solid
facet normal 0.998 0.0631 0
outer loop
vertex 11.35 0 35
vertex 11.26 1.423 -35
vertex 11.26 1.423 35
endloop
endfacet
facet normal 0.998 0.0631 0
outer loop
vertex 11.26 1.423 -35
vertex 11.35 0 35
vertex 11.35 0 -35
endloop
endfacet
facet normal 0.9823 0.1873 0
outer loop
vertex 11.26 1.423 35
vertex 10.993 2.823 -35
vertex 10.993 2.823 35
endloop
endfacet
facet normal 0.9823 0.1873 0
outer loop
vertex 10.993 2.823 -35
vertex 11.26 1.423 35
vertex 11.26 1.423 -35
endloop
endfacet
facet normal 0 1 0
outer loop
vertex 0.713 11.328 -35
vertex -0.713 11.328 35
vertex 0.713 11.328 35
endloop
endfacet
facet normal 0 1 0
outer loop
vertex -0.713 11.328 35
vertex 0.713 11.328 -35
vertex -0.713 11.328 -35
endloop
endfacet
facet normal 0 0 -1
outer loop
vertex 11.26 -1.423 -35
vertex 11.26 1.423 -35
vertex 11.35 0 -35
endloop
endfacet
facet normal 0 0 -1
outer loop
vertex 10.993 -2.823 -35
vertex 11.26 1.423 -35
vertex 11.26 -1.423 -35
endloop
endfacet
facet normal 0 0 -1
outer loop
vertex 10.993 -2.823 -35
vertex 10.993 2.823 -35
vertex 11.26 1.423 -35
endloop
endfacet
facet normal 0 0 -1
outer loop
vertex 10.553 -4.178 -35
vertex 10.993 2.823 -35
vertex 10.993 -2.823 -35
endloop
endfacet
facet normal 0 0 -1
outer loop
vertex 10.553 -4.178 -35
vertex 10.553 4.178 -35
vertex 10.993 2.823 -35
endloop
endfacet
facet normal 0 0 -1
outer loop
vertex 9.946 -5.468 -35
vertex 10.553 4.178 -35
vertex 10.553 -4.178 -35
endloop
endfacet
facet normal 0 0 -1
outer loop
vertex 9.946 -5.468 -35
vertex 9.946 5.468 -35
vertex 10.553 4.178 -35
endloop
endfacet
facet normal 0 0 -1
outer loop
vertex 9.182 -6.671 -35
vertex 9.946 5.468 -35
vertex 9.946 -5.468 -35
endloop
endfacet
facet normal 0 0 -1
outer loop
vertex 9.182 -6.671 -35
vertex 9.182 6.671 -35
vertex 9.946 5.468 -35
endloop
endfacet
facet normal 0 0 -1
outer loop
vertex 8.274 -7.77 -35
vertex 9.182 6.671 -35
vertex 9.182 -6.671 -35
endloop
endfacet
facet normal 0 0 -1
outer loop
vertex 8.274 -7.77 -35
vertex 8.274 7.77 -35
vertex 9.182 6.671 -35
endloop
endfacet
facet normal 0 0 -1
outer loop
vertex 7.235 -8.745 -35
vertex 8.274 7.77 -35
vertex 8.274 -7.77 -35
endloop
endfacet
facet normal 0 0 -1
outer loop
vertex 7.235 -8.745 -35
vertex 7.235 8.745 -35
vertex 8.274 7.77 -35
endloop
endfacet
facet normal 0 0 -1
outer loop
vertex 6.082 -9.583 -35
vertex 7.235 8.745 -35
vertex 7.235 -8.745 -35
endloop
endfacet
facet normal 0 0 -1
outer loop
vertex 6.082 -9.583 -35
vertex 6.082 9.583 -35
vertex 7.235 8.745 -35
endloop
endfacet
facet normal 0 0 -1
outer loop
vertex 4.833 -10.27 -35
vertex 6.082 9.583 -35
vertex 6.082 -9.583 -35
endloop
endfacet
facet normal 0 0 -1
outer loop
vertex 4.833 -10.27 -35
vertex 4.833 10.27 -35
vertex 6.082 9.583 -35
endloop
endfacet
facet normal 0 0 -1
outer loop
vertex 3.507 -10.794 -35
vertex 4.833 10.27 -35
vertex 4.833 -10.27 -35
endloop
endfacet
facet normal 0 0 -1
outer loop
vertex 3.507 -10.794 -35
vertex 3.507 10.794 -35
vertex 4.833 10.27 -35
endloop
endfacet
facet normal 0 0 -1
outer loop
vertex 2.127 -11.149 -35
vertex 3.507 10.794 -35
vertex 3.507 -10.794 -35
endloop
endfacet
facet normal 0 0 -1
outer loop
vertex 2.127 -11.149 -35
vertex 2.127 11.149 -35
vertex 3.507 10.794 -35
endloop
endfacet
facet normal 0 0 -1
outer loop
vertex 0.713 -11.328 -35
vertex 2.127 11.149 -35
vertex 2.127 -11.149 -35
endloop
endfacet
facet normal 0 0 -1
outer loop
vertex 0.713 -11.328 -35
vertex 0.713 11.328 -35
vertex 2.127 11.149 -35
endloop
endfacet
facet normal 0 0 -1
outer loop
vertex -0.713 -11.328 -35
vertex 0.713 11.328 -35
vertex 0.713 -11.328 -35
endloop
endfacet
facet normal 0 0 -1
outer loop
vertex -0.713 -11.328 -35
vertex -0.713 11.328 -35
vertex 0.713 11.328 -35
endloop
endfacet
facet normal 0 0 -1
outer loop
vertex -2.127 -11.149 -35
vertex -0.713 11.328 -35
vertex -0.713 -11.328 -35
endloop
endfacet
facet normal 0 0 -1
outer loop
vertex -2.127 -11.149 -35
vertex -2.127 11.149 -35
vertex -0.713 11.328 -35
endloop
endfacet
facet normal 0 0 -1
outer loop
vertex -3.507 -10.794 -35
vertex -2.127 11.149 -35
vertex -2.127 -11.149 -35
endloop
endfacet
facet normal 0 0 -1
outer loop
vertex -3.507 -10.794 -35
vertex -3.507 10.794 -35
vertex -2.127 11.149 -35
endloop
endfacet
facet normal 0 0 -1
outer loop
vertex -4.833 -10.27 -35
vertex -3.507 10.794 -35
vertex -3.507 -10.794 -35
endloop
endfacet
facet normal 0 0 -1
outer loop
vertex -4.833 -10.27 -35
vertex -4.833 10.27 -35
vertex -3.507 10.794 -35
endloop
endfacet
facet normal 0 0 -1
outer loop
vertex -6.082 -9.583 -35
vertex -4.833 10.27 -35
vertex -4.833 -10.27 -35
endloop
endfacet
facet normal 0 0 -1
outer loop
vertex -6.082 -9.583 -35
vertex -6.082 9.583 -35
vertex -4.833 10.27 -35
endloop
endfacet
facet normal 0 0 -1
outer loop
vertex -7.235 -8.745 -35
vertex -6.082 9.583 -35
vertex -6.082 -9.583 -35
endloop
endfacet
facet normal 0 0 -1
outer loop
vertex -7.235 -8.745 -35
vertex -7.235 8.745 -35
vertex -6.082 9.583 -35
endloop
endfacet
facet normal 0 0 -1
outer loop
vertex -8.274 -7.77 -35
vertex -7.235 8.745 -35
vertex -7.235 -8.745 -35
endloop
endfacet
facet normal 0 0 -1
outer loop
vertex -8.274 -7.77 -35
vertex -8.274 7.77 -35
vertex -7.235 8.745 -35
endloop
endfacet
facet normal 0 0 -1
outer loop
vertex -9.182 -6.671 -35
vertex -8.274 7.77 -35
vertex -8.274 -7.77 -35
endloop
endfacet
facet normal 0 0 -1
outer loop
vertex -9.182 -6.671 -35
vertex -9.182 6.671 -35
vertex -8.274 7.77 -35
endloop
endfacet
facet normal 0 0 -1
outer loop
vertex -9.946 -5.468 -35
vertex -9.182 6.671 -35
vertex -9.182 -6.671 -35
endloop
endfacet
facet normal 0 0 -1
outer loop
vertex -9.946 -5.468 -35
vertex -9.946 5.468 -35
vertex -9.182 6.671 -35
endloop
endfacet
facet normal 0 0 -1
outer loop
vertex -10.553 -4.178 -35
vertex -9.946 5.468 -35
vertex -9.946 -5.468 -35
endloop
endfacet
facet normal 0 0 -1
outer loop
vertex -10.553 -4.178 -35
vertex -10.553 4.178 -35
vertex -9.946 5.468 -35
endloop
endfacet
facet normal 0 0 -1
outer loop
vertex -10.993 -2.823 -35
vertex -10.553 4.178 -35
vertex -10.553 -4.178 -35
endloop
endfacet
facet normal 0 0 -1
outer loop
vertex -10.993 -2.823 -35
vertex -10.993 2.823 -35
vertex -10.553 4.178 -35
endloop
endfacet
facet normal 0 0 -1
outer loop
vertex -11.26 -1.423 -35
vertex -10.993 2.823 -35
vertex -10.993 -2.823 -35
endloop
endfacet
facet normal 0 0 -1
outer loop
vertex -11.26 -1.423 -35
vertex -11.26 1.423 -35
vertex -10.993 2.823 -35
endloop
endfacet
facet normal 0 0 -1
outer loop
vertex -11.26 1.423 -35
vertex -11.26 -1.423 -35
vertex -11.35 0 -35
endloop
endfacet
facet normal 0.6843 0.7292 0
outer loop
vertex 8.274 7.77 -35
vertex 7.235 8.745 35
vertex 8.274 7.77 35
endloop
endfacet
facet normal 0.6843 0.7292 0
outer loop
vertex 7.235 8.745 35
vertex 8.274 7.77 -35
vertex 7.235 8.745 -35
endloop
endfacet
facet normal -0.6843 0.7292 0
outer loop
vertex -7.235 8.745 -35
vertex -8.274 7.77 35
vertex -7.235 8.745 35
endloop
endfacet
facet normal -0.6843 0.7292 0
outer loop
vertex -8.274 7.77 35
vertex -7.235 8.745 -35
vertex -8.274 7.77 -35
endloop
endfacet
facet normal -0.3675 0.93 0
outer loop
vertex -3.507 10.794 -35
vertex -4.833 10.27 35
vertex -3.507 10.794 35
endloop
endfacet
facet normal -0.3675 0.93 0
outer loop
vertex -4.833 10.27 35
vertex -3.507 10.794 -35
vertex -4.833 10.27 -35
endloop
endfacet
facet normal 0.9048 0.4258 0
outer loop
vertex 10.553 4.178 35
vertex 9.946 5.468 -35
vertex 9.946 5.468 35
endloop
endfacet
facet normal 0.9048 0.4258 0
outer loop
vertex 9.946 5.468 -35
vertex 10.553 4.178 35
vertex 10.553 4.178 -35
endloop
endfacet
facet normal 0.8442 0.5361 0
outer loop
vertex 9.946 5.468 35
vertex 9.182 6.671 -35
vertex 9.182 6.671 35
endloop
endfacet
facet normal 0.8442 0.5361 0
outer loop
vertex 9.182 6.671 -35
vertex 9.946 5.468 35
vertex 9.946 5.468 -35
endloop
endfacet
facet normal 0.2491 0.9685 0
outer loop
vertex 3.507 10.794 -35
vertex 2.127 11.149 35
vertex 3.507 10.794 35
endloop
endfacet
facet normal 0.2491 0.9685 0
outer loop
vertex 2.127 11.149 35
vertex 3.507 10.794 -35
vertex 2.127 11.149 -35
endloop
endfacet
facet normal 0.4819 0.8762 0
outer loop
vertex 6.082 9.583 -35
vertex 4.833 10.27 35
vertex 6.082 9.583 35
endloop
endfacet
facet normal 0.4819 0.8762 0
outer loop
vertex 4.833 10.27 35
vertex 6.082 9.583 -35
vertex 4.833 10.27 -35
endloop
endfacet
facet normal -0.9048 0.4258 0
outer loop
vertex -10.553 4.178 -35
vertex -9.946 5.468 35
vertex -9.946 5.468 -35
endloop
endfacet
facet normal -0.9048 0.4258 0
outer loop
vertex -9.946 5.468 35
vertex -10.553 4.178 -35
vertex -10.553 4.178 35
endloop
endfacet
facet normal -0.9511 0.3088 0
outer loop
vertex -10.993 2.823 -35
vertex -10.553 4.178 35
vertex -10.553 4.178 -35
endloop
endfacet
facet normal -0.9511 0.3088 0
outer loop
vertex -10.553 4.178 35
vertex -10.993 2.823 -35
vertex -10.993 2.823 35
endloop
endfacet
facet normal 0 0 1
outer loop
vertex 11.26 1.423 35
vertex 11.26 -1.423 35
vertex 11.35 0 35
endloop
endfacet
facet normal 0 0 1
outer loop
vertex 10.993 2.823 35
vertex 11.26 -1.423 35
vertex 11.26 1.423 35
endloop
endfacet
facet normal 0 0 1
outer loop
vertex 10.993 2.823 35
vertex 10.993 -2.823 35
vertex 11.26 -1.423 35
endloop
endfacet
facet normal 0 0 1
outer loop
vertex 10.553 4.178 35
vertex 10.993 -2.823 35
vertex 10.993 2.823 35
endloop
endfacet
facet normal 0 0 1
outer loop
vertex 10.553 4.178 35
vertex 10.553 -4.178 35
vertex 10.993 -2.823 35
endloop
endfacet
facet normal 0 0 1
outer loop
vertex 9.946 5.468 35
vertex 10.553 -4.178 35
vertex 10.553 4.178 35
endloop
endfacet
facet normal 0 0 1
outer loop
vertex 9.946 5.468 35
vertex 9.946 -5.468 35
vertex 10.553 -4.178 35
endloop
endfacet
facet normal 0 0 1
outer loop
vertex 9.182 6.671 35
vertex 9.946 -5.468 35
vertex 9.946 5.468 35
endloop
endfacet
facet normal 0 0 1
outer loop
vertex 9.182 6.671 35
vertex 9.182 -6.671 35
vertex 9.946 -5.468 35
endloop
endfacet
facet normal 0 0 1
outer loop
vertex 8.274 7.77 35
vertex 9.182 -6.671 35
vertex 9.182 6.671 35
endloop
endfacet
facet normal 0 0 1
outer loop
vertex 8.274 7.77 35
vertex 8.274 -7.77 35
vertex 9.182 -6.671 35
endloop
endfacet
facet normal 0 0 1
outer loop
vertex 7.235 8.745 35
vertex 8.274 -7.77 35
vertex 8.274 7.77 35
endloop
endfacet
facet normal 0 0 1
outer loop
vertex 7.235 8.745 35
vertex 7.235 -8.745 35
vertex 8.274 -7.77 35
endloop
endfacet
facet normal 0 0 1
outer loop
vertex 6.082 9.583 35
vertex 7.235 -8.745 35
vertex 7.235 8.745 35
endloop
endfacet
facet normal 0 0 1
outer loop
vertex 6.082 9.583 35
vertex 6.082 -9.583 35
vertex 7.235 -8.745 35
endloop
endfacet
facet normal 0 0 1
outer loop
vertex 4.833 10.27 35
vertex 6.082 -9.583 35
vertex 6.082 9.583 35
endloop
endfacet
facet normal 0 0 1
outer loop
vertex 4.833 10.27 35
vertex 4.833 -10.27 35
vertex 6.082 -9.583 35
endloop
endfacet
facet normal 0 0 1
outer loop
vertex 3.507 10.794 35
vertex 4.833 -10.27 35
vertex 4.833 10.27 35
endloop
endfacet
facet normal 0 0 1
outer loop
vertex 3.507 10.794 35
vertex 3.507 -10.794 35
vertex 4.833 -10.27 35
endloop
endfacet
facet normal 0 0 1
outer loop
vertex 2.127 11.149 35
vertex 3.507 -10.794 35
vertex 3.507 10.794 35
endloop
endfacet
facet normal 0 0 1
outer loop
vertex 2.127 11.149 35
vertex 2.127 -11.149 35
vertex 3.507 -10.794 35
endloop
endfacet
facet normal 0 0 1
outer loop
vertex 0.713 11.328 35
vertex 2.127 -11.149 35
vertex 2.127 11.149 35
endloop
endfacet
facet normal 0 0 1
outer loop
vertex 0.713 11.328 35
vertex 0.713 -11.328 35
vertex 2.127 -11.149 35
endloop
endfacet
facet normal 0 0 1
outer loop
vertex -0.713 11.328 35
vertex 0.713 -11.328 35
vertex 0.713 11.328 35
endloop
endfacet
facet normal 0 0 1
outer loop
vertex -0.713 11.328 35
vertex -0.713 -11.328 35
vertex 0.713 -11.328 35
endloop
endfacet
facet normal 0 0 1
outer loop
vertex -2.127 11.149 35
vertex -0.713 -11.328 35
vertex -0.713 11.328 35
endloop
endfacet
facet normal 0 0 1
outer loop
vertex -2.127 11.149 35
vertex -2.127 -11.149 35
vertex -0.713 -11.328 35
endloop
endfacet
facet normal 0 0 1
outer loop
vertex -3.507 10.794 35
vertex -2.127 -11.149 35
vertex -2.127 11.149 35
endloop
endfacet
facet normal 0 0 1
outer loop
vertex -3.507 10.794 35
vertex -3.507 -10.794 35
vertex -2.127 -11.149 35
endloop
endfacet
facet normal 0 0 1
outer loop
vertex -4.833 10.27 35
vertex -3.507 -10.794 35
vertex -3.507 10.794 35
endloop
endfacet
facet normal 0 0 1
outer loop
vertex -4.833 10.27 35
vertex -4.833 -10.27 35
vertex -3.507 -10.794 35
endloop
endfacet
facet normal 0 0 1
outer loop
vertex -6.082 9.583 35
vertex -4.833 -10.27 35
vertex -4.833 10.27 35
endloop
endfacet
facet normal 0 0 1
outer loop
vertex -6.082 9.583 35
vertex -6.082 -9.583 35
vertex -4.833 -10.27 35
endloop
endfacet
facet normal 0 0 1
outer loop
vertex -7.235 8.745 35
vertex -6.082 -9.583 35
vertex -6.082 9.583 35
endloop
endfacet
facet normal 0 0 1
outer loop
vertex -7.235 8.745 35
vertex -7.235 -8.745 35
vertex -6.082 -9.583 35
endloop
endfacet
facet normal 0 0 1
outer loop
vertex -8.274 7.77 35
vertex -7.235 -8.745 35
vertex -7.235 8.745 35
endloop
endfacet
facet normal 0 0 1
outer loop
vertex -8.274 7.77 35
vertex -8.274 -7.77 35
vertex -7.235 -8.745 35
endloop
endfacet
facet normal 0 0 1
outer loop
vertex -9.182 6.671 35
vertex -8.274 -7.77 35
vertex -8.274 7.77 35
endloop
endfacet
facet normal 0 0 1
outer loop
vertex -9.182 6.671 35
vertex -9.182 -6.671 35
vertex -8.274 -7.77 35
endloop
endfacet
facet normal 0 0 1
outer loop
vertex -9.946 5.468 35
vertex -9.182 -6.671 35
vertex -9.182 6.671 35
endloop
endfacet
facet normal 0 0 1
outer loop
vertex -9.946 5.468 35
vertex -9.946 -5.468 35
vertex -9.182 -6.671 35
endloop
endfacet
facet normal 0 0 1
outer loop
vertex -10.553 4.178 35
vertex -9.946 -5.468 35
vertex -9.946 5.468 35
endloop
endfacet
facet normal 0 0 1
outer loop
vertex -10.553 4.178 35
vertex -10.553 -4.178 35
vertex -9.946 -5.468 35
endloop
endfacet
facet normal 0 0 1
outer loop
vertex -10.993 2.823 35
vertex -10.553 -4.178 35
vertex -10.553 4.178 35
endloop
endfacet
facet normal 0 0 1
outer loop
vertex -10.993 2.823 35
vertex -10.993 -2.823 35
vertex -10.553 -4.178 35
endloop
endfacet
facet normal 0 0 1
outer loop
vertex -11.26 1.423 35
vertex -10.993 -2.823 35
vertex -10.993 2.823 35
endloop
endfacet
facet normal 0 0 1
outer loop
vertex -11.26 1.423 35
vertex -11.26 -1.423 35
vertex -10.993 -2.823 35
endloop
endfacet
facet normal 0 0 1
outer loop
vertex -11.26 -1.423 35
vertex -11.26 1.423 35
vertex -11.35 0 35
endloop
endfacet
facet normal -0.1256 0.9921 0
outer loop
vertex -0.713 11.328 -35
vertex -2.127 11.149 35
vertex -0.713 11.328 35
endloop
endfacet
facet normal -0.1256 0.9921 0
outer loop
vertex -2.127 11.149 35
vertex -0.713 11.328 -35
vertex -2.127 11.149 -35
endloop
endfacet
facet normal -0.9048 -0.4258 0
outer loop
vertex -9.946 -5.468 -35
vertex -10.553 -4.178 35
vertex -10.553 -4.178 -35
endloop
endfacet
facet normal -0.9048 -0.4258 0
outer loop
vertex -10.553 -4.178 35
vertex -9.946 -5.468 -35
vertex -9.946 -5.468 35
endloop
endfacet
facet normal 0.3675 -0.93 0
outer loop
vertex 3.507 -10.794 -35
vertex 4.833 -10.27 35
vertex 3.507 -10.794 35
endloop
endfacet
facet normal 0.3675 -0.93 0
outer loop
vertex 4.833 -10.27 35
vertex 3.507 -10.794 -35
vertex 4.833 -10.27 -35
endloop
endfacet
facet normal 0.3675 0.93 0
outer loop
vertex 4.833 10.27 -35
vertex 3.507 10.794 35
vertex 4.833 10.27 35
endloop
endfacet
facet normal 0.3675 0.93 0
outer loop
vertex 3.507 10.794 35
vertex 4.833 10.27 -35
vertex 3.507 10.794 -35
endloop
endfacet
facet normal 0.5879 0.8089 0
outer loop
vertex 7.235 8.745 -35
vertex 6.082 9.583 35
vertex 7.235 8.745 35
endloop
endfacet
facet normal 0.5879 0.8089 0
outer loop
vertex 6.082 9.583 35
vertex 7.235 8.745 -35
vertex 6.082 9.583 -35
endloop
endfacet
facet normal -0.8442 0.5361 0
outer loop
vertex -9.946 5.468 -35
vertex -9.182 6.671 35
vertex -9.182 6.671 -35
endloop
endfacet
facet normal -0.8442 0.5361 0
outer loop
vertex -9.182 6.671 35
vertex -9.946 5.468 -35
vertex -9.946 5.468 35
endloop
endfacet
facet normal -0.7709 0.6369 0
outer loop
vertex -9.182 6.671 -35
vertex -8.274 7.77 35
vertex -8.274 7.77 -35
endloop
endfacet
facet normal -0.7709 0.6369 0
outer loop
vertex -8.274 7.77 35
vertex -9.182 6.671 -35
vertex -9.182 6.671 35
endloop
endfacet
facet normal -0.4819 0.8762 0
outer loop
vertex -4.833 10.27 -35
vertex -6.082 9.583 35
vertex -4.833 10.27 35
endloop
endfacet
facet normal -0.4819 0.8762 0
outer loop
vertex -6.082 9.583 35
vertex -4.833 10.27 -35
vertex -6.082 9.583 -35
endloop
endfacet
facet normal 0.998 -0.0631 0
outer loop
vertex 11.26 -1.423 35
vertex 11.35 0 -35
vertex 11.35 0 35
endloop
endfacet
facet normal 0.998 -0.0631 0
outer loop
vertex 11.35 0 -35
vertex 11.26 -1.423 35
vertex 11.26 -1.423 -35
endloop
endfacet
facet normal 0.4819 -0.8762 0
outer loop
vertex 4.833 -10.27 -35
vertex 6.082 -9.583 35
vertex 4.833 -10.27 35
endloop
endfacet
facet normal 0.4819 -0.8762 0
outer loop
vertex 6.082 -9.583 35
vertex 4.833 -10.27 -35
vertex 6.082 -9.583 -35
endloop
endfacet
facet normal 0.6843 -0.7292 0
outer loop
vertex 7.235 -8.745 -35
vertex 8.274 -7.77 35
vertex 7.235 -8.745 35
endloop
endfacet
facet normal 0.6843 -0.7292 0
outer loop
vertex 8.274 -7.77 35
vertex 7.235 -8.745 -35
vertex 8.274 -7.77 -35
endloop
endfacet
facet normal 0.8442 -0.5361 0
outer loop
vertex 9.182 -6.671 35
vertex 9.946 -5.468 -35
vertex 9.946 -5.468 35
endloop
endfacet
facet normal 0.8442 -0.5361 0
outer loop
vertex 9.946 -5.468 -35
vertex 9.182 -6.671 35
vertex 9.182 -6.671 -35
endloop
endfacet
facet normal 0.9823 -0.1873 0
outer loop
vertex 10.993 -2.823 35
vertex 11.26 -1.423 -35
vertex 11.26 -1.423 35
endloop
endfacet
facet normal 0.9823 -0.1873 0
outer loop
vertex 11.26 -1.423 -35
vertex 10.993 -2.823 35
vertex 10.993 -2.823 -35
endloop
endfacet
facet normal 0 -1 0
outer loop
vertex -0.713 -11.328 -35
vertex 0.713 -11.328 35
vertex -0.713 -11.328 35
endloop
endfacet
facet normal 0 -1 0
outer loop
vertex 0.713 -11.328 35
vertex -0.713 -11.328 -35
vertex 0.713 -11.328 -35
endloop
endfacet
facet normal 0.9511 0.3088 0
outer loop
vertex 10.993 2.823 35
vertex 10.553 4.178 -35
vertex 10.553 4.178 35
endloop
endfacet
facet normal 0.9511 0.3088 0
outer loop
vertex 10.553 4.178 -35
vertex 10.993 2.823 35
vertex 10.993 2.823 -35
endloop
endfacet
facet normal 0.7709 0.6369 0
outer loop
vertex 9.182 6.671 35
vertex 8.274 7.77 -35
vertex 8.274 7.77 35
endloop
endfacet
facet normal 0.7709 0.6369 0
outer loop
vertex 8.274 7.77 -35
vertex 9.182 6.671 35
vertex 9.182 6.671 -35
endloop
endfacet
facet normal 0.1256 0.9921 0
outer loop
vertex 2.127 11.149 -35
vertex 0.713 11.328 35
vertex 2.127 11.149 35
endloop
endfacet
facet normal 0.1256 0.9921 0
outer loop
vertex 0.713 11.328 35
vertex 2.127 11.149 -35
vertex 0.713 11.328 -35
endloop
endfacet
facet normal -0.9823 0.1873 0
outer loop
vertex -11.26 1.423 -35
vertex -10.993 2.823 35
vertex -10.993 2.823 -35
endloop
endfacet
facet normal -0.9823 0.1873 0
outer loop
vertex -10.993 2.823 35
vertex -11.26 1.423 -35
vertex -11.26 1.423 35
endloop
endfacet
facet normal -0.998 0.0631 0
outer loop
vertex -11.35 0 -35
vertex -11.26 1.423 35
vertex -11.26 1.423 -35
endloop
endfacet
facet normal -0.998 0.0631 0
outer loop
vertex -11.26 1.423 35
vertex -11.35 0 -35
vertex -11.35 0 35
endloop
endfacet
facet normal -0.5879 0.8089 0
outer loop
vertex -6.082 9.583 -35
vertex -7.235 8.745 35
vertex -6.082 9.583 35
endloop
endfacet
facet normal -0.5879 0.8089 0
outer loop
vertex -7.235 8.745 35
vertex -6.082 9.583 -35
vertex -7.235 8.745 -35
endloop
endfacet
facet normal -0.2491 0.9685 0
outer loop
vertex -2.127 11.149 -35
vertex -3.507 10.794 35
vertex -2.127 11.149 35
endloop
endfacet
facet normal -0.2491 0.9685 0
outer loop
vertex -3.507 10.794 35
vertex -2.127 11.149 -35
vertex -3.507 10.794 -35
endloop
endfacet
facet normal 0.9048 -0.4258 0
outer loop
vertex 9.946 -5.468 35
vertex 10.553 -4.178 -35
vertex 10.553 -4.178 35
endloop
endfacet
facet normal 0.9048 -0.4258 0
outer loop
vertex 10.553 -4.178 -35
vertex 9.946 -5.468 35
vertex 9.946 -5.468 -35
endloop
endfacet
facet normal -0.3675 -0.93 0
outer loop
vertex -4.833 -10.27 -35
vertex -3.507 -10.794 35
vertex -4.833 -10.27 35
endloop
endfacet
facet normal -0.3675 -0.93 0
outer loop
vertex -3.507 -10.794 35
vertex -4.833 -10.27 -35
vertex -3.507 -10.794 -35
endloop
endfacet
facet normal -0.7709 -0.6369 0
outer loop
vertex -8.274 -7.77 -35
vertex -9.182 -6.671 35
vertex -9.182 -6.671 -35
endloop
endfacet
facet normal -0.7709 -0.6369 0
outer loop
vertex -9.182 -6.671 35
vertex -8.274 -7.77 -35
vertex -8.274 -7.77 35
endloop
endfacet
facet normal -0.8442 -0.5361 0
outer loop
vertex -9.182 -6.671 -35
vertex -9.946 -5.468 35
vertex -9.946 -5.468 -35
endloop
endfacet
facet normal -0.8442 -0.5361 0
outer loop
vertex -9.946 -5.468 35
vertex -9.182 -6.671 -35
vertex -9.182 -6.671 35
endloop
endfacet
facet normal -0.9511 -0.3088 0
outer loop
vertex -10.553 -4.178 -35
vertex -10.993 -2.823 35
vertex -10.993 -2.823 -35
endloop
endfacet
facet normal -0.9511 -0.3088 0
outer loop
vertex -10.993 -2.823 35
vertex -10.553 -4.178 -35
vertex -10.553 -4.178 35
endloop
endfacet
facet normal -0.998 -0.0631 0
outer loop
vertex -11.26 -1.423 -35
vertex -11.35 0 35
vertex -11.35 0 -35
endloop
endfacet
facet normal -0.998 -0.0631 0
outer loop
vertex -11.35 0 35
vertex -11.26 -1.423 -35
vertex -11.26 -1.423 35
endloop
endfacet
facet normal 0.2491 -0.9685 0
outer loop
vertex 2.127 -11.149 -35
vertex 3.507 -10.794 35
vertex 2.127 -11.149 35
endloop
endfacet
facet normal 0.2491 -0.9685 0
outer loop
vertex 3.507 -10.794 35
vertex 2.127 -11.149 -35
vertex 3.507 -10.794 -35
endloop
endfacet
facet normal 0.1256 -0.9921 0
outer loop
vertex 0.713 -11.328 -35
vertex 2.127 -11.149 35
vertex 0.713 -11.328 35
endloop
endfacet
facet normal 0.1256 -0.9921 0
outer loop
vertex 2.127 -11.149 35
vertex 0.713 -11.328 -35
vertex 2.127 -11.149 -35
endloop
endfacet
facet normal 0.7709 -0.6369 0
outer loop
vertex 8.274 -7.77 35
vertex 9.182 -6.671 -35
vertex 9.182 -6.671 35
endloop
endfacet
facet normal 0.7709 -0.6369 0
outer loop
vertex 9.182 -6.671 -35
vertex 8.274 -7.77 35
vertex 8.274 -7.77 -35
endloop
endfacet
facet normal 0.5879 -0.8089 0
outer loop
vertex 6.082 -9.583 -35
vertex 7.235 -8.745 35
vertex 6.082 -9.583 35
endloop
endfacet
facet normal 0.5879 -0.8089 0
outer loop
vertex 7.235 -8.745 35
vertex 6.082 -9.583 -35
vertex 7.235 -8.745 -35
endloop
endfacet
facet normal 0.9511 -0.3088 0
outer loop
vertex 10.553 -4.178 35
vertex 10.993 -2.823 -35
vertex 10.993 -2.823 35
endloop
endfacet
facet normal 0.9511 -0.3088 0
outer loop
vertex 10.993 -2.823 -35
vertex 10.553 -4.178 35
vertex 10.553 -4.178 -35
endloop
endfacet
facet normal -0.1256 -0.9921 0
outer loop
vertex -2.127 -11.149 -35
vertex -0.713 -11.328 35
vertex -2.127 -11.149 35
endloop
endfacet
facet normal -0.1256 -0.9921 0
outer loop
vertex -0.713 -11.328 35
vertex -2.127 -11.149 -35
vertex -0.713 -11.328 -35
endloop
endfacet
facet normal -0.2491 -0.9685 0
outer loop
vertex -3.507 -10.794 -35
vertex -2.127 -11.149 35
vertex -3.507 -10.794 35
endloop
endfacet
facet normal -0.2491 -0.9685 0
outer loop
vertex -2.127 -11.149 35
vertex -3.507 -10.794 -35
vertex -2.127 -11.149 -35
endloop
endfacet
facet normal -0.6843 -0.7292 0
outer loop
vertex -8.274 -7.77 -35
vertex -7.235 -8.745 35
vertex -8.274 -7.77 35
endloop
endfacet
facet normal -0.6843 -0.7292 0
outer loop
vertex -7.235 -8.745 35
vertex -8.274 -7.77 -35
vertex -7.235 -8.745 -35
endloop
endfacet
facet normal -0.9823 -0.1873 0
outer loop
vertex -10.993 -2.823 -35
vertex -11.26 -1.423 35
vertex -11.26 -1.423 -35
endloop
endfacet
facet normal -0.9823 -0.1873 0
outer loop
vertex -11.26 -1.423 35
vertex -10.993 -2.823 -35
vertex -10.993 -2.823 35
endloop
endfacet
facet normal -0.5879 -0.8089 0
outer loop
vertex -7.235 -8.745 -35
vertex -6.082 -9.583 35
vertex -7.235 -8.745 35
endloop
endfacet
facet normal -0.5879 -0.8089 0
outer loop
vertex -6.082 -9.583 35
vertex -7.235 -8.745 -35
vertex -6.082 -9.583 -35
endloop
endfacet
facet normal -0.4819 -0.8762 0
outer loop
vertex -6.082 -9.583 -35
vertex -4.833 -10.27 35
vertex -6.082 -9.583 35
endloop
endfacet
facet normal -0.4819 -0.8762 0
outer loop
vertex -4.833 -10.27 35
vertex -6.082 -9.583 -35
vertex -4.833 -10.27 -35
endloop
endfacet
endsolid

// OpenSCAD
$fn = 50;


difference() {
	union() {
		translate(v = [0, 0, -35.0000000000]) {
			cylinder(h = 70, r = 11.3500000000);
		}
	}
	union() {
		translate(v = [0, 0, -100.0000000000]) {
			cylinder(h = 200, r = 0);
		}
	}
}
